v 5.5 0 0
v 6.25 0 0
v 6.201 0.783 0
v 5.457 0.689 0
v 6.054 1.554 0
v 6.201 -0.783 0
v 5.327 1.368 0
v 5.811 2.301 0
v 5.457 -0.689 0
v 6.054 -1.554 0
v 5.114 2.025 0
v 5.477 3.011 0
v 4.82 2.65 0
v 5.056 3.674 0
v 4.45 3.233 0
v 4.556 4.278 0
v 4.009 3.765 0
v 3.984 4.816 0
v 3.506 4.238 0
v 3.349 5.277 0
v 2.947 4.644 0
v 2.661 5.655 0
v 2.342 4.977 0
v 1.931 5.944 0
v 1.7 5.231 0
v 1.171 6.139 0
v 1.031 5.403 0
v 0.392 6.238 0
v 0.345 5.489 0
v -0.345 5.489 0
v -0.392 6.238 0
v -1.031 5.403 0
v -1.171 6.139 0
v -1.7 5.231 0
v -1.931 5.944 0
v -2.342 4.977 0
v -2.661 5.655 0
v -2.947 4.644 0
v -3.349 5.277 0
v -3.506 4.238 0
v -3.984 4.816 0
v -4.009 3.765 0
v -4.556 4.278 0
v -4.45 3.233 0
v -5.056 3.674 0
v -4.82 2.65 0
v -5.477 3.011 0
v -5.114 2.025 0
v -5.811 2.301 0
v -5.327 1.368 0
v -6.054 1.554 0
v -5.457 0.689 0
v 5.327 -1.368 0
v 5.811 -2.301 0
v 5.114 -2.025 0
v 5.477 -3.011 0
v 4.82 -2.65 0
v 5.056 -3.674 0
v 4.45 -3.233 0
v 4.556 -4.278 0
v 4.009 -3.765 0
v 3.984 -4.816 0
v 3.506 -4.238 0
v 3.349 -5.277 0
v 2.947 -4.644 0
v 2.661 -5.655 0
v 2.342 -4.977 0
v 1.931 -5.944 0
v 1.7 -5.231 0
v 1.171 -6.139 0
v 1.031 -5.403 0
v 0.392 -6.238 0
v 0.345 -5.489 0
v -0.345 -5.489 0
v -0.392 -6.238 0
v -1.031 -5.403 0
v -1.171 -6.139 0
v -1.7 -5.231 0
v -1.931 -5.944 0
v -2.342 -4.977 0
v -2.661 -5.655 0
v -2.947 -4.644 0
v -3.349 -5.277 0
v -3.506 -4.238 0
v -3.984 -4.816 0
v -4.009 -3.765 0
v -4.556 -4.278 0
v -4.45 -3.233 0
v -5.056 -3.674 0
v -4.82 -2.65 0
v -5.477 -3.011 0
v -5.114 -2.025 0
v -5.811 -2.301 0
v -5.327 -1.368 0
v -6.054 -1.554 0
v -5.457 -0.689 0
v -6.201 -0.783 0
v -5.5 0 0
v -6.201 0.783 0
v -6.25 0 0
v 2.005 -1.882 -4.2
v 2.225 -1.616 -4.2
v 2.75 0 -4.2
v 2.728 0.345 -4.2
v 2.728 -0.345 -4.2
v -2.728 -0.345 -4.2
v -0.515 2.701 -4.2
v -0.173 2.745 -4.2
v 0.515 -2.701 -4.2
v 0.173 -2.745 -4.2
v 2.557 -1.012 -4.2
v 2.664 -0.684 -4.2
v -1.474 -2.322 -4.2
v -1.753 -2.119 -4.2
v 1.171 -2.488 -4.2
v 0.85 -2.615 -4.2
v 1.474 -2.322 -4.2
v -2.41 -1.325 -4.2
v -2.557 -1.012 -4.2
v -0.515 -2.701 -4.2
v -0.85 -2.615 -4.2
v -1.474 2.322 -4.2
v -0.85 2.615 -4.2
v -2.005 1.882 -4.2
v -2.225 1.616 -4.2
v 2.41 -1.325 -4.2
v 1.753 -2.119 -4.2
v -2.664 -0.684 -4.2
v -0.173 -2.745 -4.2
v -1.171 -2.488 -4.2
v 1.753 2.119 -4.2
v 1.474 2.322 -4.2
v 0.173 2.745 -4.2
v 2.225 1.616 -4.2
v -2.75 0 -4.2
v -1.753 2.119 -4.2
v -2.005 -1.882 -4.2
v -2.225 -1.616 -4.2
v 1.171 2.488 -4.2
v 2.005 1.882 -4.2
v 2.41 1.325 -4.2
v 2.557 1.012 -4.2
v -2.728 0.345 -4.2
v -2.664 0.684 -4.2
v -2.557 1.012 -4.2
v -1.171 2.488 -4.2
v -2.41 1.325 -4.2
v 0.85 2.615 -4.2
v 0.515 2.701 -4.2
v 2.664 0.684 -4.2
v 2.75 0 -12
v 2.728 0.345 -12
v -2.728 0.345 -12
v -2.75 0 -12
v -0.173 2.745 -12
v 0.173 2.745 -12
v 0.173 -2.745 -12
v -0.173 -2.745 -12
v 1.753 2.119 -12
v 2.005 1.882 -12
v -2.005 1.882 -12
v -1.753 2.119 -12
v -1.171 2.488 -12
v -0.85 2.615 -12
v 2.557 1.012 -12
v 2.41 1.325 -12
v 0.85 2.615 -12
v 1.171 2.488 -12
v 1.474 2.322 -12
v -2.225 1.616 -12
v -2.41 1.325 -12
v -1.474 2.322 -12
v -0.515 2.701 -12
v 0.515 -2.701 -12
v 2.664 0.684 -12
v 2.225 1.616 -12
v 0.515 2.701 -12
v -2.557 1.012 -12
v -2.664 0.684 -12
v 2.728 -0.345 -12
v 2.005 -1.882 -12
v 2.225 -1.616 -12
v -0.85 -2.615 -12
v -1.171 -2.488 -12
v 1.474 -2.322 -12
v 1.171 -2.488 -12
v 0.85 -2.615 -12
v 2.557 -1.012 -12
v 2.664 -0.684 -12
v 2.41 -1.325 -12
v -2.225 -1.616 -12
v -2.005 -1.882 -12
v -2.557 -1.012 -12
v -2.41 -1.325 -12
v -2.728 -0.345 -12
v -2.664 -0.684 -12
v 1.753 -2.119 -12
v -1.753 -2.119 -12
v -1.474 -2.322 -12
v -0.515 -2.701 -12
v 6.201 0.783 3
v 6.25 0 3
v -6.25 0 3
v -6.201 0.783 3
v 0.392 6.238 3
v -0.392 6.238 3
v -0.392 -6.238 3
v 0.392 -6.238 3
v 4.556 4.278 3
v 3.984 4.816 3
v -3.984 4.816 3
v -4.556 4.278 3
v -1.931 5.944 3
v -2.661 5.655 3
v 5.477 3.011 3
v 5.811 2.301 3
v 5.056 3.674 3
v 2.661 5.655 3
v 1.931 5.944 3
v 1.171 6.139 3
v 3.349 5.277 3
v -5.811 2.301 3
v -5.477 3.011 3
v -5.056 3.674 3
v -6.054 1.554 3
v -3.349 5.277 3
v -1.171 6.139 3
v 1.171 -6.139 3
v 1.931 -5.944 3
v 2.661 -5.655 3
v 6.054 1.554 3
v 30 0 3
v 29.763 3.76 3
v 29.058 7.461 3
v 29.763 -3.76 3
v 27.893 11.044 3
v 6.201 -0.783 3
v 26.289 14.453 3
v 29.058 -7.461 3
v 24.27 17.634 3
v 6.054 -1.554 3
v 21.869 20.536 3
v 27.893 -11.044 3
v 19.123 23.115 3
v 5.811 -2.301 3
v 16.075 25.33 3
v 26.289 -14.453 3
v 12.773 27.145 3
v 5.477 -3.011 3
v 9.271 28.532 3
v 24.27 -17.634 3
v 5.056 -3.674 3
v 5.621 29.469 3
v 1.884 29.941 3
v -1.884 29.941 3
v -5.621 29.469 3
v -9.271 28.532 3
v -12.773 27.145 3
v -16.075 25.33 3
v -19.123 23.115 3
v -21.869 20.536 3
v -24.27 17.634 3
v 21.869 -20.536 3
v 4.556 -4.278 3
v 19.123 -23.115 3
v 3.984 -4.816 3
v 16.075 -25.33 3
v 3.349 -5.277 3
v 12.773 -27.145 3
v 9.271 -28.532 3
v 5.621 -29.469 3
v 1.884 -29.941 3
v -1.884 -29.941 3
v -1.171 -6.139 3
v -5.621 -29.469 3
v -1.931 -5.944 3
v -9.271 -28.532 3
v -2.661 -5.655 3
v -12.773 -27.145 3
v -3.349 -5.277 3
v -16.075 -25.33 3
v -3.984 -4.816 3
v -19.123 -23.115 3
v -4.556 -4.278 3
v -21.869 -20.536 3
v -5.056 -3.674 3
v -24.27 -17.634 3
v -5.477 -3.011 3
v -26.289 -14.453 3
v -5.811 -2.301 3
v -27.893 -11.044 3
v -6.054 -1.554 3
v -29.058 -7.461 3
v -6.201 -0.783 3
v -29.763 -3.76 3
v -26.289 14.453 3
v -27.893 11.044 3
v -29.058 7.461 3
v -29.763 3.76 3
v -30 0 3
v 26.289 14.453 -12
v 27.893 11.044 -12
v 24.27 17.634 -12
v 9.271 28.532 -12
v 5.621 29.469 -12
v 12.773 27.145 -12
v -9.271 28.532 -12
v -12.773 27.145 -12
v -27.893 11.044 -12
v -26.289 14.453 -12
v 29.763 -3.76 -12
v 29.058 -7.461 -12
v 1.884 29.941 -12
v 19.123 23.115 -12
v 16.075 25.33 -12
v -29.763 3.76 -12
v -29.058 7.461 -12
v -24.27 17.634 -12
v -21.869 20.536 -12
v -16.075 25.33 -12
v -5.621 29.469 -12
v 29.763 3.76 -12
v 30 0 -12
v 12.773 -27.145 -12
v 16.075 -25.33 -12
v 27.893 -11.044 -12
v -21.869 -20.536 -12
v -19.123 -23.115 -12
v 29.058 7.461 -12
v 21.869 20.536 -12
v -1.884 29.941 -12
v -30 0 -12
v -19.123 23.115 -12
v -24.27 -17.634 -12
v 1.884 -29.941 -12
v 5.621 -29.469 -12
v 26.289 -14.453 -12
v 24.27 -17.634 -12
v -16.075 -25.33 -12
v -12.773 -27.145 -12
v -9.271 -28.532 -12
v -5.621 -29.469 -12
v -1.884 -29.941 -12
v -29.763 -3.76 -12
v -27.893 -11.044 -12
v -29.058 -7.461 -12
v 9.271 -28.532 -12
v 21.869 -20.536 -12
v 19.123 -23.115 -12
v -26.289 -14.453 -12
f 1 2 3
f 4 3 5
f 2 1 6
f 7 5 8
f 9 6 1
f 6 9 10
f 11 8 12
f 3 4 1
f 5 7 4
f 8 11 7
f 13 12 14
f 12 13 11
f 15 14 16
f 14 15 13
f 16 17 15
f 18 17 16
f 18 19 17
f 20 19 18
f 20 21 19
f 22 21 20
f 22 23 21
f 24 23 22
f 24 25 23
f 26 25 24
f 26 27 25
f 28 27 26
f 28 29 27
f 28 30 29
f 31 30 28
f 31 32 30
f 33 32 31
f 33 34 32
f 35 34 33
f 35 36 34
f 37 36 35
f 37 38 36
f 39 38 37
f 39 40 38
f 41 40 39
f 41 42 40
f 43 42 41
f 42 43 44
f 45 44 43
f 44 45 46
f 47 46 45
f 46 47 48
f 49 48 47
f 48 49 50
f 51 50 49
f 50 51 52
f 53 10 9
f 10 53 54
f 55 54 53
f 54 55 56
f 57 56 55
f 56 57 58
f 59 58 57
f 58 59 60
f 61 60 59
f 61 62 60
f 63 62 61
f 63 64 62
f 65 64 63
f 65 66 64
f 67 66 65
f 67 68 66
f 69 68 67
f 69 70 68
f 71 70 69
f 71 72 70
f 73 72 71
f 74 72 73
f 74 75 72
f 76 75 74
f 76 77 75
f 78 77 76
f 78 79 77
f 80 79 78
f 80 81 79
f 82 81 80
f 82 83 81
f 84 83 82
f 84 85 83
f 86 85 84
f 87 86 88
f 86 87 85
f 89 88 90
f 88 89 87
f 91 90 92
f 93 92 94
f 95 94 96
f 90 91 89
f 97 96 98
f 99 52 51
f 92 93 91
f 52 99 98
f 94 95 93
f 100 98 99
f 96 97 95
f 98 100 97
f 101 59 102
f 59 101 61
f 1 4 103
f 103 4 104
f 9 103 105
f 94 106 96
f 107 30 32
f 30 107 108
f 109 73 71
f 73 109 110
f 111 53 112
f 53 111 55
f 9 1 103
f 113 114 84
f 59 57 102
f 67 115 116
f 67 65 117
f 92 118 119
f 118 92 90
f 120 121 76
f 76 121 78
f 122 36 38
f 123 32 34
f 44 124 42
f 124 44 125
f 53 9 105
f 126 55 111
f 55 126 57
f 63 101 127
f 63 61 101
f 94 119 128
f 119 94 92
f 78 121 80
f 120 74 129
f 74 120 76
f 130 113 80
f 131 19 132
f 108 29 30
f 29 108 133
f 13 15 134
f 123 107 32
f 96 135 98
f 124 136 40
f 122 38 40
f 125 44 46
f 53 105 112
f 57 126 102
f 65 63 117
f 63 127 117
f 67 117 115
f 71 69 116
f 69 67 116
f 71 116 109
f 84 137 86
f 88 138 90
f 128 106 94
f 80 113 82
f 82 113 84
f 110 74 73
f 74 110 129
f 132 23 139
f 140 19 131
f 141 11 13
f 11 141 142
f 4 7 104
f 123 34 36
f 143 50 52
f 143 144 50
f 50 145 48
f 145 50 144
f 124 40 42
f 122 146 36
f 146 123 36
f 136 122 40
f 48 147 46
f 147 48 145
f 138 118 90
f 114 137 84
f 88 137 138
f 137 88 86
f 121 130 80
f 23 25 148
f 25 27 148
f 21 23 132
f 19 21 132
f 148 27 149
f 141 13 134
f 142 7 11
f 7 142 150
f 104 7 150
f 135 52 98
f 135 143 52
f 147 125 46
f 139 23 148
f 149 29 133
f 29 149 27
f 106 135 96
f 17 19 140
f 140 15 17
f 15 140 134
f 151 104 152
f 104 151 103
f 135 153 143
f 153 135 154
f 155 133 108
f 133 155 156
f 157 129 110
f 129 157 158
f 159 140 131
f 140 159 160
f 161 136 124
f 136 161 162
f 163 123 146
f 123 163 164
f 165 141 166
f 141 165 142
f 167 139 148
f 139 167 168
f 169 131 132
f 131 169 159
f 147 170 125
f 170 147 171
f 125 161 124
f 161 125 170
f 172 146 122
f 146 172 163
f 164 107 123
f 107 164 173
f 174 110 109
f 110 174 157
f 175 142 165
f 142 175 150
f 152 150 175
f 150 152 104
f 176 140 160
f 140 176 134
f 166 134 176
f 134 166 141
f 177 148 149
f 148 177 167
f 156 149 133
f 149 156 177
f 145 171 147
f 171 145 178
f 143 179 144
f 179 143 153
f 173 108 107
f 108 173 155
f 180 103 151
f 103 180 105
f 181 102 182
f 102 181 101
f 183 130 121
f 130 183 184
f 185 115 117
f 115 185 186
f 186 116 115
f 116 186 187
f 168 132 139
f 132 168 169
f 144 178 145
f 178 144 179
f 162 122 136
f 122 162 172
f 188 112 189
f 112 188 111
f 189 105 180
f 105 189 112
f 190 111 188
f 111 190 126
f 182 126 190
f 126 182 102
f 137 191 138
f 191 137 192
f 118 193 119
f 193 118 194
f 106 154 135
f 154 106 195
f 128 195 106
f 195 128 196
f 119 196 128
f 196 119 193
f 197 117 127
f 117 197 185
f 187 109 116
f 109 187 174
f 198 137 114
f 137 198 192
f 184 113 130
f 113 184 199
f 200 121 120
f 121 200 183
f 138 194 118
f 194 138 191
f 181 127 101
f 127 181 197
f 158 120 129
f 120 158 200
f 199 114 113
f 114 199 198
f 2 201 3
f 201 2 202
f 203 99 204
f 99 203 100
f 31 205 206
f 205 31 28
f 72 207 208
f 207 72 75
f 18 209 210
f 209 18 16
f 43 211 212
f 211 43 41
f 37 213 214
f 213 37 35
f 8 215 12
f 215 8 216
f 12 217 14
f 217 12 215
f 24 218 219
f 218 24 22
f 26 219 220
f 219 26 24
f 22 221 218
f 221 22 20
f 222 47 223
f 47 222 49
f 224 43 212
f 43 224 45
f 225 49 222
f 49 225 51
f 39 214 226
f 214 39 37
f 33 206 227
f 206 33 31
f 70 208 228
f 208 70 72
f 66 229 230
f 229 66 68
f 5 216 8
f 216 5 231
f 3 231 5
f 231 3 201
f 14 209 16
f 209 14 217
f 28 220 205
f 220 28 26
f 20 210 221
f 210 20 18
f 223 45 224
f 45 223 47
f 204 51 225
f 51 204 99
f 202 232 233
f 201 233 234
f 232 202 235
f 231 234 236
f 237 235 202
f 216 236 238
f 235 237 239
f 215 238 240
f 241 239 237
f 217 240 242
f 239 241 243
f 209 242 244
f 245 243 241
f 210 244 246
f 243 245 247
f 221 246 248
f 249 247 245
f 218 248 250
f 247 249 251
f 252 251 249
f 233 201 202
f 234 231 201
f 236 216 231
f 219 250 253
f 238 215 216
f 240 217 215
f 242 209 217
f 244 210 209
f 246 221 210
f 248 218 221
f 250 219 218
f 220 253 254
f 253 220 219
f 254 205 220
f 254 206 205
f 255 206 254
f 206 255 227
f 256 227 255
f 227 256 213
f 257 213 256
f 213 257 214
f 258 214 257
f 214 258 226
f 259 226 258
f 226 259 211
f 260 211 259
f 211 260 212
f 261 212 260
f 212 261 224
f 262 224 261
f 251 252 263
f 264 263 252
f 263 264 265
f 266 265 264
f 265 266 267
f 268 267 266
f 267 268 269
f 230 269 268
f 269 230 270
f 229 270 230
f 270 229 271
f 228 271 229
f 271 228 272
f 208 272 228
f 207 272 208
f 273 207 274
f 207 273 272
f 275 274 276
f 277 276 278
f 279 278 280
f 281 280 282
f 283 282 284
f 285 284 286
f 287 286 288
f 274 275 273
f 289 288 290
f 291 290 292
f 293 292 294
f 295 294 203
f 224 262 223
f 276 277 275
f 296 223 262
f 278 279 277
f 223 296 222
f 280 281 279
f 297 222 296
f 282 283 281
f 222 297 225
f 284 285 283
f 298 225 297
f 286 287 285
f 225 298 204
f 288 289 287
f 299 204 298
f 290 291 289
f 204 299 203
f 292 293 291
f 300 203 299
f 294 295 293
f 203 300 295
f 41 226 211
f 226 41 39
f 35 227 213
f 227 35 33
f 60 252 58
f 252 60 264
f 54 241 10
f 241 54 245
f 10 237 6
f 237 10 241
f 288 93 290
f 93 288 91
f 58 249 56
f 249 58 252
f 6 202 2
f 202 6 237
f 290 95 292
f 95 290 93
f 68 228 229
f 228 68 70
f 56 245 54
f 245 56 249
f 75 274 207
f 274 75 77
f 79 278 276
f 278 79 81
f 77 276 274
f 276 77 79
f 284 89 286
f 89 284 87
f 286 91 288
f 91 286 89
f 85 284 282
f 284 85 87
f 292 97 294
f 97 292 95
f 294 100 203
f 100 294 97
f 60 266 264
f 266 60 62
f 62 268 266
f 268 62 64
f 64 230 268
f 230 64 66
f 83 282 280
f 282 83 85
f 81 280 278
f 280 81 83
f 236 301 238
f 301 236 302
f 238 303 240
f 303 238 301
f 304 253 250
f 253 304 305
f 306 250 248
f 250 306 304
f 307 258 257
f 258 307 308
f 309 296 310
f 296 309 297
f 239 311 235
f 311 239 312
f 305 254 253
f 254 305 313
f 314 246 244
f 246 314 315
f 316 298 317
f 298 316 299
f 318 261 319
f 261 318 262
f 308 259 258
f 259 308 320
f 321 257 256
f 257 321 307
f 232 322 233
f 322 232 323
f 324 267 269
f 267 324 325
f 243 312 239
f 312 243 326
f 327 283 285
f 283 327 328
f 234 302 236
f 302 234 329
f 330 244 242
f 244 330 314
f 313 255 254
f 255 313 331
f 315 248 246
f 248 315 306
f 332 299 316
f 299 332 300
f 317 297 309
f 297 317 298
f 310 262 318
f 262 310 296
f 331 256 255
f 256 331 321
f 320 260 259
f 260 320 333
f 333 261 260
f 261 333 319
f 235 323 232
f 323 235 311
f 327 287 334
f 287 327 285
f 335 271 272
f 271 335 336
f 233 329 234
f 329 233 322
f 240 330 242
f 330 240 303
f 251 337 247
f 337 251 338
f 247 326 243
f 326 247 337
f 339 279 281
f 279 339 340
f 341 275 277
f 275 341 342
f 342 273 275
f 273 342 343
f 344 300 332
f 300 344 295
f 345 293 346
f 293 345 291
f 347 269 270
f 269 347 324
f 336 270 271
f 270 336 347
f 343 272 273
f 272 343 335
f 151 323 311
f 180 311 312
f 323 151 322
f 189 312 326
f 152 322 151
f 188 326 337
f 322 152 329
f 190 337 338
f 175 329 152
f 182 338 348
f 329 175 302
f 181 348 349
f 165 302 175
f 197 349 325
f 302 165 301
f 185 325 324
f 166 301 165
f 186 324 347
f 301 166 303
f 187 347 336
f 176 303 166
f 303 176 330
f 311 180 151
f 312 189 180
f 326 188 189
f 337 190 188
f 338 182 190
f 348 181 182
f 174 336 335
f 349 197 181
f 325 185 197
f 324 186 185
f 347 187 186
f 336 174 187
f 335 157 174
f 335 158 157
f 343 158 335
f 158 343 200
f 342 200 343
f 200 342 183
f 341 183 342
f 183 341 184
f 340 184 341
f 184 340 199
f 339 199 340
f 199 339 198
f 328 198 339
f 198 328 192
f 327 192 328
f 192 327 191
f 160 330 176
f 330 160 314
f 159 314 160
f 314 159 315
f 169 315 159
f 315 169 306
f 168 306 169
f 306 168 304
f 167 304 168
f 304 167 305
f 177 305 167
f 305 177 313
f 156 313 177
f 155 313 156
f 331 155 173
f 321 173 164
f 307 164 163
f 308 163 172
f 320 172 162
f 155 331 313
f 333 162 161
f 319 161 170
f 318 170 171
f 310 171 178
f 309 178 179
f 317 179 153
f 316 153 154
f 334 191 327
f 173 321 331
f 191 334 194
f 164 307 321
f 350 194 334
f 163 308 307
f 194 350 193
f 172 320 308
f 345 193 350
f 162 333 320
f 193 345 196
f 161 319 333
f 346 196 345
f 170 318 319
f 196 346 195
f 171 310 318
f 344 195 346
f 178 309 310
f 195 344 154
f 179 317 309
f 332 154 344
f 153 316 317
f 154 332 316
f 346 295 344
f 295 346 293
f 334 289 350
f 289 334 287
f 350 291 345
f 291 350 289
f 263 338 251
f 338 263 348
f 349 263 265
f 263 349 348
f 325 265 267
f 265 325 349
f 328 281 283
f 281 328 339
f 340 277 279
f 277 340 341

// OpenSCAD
$fn = 50;

difference() {
	union() {
		translate(v = [0, 0, -12.0]) {
			cylinder(h = 15, r = 30.0);
		}
	}
	union() {
		translate(v = [0, 0, 0]) {
			rotate(a = [0, 0, 0]) {
				difference() {
					union() {
						translate(v = [0, 0, -15.0]) {
							cylinder(h = 15, r = 2.25);
						}
						translate(v = [0, 0, -4.2]) {
							cylinder(h = 4.2, r1 = 2.75, r2 = 5.5);
						}
						translate(v = [0, 0, -15.0]) {
							cylinder(h = 15, r = 2.75);
						}
						translate(v = [0, 0, -15.0]) {
							cylinder(h = 15, r = 2.25);
						}
					}
					union();
				}
			}
		}
		#cylinder(h = 3, r = 6.25);
	}
}
